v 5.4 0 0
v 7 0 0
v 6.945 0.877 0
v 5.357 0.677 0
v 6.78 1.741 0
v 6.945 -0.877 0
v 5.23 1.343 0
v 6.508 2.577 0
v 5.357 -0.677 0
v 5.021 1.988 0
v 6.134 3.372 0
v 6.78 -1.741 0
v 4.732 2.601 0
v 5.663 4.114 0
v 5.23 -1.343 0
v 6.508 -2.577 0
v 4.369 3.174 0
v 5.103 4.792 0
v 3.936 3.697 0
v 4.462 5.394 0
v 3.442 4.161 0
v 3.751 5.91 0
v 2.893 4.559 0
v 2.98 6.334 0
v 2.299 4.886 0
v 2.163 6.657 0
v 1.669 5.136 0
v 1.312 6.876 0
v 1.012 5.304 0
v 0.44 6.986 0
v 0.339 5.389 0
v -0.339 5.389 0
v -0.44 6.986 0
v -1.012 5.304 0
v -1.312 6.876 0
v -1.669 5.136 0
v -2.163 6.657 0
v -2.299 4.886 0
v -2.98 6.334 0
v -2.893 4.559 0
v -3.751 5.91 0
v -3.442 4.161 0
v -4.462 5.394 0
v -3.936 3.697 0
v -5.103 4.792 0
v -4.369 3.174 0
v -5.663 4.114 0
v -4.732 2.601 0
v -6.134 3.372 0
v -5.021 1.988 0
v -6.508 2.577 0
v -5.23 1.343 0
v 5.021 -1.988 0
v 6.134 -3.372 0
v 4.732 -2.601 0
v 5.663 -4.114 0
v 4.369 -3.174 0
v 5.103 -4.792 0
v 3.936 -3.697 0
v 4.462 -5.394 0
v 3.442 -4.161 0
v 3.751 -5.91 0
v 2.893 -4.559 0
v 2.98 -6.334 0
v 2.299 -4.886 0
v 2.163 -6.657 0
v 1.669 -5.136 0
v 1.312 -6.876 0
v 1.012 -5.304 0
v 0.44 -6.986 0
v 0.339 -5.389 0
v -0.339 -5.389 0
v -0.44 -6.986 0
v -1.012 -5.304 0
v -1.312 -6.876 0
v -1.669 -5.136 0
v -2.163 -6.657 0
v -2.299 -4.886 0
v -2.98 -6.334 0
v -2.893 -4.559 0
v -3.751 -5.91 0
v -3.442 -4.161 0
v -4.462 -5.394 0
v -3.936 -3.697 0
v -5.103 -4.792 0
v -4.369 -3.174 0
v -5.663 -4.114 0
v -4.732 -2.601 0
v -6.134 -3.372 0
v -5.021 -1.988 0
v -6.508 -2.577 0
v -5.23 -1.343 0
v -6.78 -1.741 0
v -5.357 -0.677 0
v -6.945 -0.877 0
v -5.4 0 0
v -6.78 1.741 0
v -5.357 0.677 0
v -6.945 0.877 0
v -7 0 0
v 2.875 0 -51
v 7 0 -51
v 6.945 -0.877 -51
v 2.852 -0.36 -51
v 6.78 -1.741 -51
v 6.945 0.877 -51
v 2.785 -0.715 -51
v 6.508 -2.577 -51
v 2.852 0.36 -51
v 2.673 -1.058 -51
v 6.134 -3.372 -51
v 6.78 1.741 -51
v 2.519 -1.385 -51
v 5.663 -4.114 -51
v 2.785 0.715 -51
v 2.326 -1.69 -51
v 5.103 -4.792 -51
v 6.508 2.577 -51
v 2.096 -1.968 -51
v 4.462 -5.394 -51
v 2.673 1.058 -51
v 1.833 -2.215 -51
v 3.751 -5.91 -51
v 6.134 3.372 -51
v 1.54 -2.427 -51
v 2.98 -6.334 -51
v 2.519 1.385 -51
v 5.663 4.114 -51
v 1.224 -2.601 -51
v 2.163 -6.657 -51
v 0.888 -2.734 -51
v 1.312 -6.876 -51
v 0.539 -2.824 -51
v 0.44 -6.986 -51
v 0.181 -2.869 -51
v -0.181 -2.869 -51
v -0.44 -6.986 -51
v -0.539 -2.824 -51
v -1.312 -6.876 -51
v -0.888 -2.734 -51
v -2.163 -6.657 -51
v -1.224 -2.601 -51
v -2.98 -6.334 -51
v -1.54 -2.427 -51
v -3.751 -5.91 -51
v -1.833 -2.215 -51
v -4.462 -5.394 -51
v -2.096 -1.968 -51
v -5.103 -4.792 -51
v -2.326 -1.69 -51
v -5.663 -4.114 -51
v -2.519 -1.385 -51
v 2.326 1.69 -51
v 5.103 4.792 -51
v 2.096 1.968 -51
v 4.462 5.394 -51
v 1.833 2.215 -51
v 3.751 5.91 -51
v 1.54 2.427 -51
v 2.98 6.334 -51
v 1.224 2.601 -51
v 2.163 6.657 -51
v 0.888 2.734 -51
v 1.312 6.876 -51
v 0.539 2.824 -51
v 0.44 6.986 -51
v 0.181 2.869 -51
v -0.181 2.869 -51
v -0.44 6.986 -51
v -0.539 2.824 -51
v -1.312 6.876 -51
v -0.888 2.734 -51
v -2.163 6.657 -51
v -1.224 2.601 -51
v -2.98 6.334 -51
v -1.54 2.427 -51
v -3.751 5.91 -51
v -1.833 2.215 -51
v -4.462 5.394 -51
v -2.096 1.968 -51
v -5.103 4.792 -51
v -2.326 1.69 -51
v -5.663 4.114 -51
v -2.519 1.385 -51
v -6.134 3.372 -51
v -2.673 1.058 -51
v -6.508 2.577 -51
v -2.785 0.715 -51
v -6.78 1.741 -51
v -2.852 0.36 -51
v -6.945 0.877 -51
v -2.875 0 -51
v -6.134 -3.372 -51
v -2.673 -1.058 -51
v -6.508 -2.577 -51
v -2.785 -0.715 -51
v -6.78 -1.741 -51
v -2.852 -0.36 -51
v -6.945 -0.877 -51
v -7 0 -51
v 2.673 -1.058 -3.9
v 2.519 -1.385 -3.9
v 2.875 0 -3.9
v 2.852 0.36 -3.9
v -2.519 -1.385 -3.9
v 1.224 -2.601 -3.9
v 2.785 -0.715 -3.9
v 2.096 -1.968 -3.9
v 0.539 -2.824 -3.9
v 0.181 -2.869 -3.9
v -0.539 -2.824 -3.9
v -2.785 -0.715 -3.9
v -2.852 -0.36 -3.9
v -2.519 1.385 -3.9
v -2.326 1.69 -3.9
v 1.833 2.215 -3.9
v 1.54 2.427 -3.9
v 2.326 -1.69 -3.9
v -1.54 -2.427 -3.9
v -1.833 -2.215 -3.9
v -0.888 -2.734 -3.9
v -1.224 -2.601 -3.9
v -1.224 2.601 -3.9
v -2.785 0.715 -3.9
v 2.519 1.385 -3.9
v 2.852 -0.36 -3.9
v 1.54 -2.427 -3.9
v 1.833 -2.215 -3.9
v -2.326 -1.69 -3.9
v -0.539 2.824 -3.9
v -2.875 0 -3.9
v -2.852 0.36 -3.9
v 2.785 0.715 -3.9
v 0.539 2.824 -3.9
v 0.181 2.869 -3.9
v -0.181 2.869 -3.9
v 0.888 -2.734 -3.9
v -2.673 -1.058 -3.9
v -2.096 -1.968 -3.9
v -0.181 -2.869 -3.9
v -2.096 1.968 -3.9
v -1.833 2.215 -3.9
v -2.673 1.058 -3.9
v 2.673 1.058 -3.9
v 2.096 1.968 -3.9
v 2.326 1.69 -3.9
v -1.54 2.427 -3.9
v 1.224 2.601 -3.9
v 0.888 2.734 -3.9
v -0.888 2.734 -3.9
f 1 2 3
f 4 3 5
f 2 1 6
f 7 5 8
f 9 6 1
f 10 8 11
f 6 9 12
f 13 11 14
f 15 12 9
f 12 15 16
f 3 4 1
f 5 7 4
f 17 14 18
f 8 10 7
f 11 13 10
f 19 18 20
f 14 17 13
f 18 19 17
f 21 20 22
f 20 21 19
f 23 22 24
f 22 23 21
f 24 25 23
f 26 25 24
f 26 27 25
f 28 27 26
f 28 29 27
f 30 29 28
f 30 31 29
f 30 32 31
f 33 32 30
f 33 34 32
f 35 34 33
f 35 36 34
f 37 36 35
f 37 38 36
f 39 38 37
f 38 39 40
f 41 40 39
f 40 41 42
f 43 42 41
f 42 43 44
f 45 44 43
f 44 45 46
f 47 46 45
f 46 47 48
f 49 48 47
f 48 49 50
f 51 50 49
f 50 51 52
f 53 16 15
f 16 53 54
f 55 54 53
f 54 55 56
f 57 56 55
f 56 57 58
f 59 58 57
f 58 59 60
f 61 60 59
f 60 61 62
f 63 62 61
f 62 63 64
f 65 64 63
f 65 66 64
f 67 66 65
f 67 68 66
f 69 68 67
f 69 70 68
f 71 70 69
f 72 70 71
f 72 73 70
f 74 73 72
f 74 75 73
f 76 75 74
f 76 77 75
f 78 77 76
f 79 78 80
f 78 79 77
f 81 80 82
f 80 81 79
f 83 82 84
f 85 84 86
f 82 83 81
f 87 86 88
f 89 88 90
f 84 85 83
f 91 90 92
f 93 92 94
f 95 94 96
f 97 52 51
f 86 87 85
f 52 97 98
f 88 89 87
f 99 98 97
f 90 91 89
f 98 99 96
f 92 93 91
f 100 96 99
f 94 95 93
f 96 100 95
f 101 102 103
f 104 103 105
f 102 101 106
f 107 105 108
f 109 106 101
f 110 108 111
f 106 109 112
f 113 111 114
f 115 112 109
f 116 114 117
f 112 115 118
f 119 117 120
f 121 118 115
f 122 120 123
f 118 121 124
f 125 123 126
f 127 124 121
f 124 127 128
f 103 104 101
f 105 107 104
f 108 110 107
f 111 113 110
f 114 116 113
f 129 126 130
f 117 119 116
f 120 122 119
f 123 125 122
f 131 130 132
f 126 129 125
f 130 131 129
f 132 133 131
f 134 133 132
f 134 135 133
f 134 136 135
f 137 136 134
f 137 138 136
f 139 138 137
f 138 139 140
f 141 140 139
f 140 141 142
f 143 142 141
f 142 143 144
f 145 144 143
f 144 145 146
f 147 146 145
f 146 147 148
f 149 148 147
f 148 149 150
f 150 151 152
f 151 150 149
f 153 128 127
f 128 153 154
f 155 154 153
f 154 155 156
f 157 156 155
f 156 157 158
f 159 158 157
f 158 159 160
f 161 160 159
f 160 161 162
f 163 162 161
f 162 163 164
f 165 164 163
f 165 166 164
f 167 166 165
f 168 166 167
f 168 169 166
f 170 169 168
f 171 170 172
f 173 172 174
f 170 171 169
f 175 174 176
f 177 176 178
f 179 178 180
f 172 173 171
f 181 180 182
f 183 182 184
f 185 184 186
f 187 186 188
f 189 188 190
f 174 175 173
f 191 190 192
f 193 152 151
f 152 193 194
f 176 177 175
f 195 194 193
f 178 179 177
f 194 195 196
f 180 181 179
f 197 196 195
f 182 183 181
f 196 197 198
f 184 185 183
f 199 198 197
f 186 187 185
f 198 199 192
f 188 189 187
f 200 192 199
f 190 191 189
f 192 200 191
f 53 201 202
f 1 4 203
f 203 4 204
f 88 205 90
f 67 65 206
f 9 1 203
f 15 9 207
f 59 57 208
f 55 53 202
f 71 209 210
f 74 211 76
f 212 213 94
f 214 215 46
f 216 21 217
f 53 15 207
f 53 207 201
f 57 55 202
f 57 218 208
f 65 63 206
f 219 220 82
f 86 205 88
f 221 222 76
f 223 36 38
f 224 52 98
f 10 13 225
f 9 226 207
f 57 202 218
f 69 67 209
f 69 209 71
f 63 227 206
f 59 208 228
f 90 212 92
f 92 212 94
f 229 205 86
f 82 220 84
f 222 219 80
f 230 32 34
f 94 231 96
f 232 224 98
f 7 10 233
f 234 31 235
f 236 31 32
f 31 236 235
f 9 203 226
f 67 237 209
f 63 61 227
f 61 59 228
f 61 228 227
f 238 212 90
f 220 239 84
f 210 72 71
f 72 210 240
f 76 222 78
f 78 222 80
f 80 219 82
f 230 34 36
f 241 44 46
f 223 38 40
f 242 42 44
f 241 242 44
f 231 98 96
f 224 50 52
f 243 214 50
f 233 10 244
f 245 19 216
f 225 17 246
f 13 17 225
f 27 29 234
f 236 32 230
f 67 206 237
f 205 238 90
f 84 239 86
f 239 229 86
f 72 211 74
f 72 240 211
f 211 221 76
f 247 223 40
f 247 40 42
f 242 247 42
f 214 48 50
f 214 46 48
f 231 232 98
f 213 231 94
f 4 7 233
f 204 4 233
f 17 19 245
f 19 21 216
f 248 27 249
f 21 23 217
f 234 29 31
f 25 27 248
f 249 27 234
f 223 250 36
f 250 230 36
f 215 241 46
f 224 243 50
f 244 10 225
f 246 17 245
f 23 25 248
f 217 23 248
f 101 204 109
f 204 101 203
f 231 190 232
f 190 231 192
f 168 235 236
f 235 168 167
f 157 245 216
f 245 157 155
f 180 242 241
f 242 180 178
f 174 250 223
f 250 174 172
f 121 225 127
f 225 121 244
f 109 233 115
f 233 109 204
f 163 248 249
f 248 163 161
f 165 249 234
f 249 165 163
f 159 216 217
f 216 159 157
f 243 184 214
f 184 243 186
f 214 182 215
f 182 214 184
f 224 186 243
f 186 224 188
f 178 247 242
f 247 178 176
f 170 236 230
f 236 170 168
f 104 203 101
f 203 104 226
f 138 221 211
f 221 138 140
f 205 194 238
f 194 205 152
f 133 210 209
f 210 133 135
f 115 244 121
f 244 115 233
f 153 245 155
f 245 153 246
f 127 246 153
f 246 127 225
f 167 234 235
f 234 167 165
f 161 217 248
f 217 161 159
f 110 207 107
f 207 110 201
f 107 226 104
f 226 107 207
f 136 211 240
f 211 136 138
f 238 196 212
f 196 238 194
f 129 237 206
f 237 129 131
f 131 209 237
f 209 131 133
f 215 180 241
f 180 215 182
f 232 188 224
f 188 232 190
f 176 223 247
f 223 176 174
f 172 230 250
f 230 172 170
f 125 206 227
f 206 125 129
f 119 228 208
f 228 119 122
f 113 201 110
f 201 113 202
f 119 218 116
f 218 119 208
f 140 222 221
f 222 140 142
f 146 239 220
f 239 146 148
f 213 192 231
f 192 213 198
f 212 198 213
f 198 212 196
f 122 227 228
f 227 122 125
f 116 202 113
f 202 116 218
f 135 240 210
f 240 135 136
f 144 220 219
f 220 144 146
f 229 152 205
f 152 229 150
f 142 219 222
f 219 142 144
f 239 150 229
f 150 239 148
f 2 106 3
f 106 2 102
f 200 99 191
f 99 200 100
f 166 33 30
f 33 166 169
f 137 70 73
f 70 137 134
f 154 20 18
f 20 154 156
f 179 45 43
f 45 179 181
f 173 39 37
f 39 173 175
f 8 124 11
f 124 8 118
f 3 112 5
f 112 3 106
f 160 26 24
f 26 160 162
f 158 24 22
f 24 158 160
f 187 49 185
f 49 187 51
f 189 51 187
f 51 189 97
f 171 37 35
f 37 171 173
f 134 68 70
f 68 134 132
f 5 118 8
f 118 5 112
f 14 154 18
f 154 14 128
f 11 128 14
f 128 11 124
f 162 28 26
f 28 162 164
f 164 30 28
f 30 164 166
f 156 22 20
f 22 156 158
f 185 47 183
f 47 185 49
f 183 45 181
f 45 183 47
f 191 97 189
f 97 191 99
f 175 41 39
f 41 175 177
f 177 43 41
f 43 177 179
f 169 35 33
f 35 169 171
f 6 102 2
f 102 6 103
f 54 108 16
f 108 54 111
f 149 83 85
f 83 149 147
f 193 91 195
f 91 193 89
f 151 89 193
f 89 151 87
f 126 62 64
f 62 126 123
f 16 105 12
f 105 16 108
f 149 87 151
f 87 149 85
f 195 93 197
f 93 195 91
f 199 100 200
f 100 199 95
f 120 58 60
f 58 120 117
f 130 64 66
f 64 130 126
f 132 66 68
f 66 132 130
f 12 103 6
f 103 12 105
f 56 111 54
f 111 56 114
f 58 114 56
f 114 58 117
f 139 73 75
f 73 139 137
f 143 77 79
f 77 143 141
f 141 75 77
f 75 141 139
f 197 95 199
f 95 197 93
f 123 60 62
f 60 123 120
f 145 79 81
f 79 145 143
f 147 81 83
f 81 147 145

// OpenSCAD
$fn = 50;


difference() {
	union() {
		translate(v = [0, 0, -51.0000000000]) {
			cylinder(h = 51, r = 7.0000000000);
		}
	}
	union() {
		translate(v = [0, 0, 0]) {
			rotate(a = [0, 0, 0]) {
				difference() {
					union() {
						#translate(v = [0, 0, -51.0000000000]) {
							cylinder(h = 51, r = 2.6000000000);
						}
						#translate(v = [0, 0, -3.9000000000]) {
							cylinder(h = 3.9000000000, r1 = 2.8750000000, r2 = 5.4000000000);
						}
						#translate(v = [0, 0, -51.0000000000]) {
							cylinder(h = 51, r = 2.8750000000);
						}
						#translate(v = [0, 0, -51.0000000000]) {
							cylinder(h = 51, r = 2.6000000000);
						}
					}
					union();
				}
			}
		}
	}
}
